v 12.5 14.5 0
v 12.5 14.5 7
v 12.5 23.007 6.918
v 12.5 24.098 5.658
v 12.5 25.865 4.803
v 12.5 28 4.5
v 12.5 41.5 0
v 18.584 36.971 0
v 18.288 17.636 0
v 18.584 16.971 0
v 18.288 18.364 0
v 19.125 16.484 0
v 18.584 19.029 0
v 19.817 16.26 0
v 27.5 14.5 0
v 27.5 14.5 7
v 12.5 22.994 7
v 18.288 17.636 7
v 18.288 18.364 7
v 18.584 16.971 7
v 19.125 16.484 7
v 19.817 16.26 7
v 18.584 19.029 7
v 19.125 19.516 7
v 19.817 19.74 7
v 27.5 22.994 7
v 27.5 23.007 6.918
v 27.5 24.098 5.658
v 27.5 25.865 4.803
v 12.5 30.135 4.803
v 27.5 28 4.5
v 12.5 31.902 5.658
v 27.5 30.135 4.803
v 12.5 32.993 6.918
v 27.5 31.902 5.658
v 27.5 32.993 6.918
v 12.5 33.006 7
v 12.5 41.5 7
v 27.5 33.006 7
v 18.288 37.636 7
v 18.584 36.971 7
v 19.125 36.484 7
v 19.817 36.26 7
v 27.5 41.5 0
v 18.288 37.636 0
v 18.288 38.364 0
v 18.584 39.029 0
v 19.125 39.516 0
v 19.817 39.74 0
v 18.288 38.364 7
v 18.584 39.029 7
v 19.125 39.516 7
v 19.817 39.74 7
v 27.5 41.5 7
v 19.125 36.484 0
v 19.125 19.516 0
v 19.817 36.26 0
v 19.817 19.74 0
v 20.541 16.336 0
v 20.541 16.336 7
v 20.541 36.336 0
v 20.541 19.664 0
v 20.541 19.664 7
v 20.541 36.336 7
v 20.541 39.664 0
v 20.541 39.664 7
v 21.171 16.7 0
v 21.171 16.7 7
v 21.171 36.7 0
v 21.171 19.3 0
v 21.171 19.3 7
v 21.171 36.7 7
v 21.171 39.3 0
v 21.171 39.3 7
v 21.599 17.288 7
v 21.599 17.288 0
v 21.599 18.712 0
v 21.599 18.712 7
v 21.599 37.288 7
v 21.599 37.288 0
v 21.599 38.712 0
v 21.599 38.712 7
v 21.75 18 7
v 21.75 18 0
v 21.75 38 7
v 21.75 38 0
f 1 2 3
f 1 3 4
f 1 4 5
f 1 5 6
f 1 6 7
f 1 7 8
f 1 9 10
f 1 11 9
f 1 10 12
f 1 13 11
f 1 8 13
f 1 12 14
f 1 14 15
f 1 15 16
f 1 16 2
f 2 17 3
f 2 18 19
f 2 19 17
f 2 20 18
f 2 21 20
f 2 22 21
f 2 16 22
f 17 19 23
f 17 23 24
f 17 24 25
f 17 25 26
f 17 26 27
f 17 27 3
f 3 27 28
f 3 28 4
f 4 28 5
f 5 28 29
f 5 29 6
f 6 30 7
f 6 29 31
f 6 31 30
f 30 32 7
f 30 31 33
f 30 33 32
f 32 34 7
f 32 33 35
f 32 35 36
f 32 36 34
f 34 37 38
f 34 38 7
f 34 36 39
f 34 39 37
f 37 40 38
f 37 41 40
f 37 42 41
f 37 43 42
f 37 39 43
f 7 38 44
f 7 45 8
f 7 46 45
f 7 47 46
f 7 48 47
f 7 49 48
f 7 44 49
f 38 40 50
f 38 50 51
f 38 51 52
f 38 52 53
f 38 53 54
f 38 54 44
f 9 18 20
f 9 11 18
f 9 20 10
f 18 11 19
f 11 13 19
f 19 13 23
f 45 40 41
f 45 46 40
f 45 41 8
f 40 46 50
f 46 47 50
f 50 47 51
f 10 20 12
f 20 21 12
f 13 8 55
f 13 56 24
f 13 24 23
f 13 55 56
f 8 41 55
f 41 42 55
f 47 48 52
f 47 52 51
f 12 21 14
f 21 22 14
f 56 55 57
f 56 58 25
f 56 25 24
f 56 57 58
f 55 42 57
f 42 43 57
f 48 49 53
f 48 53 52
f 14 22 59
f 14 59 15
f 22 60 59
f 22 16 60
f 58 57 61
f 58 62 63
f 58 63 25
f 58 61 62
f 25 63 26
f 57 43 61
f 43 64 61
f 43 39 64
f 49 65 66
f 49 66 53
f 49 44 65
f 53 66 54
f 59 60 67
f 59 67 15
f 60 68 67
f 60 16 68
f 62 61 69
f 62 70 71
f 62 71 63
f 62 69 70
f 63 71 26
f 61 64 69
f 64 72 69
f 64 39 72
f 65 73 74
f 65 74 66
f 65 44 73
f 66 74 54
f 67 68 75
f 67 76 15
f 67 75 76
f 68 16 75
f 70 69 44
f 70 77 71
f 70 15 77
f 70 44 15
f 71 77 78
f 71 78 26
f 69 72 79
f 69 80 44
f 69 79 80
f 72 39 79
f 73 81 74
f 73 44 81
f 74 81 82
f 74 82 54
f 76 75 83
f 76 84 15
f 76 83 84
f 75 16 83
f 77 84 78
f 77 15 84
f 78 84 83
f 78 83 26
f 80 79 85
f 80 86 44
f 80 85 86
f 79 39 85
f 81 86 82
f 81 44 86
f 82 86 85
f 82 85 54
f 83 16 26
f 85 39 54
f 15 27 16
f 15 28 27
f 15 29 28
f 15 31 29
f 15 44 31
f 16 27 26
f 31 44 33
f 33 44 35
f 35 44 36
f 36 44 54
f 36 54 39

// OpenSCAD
main_screw = 6.3;
clamp_screw = 3.5;
clamp_screw_head_d = 6.3;
clamp_screw_head_h = 3.5;
width = 15;

cables = 2;
cable_thickness = [5, 7, 7, 5];

side_a = round(cables/2);
side_b = cables-side_a;
length = 29*(cables+1);
thickness = 8;

module cable_clamp_a(){

difference(){
    translate([-width/2, -length/2, 0])
        cube([width, length, thickness]);
    
    cylinder(d=main_screw, h=thickness+0.2);
    
    for (x = [1:side_a]){
        translate([0, x*28+10, -0.1]){
            
            translate([0, 0, clamp_screw_head_h+0.2])
                cylinder(d = clamp_screw, h = thickness+0.2);
            cylinder(d = clamp_screw_head_d, h = clamp_screw_head_h);
            translate([0, 0, thickness - clamp_screw_head_h+0.2])
                cylinder(d = clamp_screw_head_d, h = clamp_screw_head_h, $fn=6);
            
            translate([-width/2, -10, thickness])
                rotate([0, 90, 0])
                    scale([1, 1.5, 1])
                        cylinder(h = width+0.2+10, d = cable_thickness[x], $fn=15);
        }
        
        
        translate([0, x*28+10-20, -0.1]){
            translate([0, 0, clamp_screw_head_h+0.2])
                cylinder(d = clamp_screw, h = thickness+0.2);
            cylinder(d = clamp_screw_head_d, h = clamp_screw_head_h);
            translate([0, 0, thickness - clamp_screw_head_h+0.2])
                cylinder(d = clamp_screw_head_d, h = clamp_screw_head_h, $fn=6);
        }   
    }
    for (x = [1:side_b]){
        translate([0, -x*28-10, -0.1]){
            
            translate([0, 0, clamp_screw_head_h+0.2])
                cylinder(d = clamp_screw, h = thickness+0.2);
            cylinder(d = clamp_screw_head_d, h = clamp_screw_head_h);
            translate([0, 0, thickness - clamp_screw_head_h+0.2])
                cylinder(d = clamp_screw_head_d, h = clamp_screw_head_h, $fn=6);
            
            translate([-width/2, +10, thickness])
                rotate([0, 90, 0])
                    scale([1, 1.5, 1])
                        cylinder(h = width+0.2+10, d = cable_thickness[x], $fn=15);
        }
        
        
        translate([0, -x*28-10+20, -0.1]){
            translate([0, 0, clamp_screw_head_h+0.2])
                cylinder(d = clamp_screw, h = thickness+0.2);
            cylinder(d = clamp_screw_head_d, h = clamp_screw_head_h);
            translate([0, 0, thickness - clamp_screw_head_h+0.2])
                cylinder(d = clamp_screw_head_d, h = clamp_screw_head_h, $fn=6);
        }   
    }
    
}    
}


module cable_clamp_b(){
    difference(){
      translate([-width/2, -13.5, 0])
        cube([width, 27, 7]);
        
    translate([-width/2, 0, 7+1])
        rotate([0, 90, 0])
            scale([1, 1.5, 1])
                cylinder(h = width+0.2+10, d = 7, $fn=15);

    translate([0, 10, 0])
    cylinder(d = clamp_screw, h = thickness+0.2, $fn=15);

    translate([0, -10, 0])
    cylinder(d = clamp_screw, h = thickness+0.2, $fn=15);


    
    }
}

//cable_clamp_a();
translate([20, 28, 0]) cable_clamp_b();
